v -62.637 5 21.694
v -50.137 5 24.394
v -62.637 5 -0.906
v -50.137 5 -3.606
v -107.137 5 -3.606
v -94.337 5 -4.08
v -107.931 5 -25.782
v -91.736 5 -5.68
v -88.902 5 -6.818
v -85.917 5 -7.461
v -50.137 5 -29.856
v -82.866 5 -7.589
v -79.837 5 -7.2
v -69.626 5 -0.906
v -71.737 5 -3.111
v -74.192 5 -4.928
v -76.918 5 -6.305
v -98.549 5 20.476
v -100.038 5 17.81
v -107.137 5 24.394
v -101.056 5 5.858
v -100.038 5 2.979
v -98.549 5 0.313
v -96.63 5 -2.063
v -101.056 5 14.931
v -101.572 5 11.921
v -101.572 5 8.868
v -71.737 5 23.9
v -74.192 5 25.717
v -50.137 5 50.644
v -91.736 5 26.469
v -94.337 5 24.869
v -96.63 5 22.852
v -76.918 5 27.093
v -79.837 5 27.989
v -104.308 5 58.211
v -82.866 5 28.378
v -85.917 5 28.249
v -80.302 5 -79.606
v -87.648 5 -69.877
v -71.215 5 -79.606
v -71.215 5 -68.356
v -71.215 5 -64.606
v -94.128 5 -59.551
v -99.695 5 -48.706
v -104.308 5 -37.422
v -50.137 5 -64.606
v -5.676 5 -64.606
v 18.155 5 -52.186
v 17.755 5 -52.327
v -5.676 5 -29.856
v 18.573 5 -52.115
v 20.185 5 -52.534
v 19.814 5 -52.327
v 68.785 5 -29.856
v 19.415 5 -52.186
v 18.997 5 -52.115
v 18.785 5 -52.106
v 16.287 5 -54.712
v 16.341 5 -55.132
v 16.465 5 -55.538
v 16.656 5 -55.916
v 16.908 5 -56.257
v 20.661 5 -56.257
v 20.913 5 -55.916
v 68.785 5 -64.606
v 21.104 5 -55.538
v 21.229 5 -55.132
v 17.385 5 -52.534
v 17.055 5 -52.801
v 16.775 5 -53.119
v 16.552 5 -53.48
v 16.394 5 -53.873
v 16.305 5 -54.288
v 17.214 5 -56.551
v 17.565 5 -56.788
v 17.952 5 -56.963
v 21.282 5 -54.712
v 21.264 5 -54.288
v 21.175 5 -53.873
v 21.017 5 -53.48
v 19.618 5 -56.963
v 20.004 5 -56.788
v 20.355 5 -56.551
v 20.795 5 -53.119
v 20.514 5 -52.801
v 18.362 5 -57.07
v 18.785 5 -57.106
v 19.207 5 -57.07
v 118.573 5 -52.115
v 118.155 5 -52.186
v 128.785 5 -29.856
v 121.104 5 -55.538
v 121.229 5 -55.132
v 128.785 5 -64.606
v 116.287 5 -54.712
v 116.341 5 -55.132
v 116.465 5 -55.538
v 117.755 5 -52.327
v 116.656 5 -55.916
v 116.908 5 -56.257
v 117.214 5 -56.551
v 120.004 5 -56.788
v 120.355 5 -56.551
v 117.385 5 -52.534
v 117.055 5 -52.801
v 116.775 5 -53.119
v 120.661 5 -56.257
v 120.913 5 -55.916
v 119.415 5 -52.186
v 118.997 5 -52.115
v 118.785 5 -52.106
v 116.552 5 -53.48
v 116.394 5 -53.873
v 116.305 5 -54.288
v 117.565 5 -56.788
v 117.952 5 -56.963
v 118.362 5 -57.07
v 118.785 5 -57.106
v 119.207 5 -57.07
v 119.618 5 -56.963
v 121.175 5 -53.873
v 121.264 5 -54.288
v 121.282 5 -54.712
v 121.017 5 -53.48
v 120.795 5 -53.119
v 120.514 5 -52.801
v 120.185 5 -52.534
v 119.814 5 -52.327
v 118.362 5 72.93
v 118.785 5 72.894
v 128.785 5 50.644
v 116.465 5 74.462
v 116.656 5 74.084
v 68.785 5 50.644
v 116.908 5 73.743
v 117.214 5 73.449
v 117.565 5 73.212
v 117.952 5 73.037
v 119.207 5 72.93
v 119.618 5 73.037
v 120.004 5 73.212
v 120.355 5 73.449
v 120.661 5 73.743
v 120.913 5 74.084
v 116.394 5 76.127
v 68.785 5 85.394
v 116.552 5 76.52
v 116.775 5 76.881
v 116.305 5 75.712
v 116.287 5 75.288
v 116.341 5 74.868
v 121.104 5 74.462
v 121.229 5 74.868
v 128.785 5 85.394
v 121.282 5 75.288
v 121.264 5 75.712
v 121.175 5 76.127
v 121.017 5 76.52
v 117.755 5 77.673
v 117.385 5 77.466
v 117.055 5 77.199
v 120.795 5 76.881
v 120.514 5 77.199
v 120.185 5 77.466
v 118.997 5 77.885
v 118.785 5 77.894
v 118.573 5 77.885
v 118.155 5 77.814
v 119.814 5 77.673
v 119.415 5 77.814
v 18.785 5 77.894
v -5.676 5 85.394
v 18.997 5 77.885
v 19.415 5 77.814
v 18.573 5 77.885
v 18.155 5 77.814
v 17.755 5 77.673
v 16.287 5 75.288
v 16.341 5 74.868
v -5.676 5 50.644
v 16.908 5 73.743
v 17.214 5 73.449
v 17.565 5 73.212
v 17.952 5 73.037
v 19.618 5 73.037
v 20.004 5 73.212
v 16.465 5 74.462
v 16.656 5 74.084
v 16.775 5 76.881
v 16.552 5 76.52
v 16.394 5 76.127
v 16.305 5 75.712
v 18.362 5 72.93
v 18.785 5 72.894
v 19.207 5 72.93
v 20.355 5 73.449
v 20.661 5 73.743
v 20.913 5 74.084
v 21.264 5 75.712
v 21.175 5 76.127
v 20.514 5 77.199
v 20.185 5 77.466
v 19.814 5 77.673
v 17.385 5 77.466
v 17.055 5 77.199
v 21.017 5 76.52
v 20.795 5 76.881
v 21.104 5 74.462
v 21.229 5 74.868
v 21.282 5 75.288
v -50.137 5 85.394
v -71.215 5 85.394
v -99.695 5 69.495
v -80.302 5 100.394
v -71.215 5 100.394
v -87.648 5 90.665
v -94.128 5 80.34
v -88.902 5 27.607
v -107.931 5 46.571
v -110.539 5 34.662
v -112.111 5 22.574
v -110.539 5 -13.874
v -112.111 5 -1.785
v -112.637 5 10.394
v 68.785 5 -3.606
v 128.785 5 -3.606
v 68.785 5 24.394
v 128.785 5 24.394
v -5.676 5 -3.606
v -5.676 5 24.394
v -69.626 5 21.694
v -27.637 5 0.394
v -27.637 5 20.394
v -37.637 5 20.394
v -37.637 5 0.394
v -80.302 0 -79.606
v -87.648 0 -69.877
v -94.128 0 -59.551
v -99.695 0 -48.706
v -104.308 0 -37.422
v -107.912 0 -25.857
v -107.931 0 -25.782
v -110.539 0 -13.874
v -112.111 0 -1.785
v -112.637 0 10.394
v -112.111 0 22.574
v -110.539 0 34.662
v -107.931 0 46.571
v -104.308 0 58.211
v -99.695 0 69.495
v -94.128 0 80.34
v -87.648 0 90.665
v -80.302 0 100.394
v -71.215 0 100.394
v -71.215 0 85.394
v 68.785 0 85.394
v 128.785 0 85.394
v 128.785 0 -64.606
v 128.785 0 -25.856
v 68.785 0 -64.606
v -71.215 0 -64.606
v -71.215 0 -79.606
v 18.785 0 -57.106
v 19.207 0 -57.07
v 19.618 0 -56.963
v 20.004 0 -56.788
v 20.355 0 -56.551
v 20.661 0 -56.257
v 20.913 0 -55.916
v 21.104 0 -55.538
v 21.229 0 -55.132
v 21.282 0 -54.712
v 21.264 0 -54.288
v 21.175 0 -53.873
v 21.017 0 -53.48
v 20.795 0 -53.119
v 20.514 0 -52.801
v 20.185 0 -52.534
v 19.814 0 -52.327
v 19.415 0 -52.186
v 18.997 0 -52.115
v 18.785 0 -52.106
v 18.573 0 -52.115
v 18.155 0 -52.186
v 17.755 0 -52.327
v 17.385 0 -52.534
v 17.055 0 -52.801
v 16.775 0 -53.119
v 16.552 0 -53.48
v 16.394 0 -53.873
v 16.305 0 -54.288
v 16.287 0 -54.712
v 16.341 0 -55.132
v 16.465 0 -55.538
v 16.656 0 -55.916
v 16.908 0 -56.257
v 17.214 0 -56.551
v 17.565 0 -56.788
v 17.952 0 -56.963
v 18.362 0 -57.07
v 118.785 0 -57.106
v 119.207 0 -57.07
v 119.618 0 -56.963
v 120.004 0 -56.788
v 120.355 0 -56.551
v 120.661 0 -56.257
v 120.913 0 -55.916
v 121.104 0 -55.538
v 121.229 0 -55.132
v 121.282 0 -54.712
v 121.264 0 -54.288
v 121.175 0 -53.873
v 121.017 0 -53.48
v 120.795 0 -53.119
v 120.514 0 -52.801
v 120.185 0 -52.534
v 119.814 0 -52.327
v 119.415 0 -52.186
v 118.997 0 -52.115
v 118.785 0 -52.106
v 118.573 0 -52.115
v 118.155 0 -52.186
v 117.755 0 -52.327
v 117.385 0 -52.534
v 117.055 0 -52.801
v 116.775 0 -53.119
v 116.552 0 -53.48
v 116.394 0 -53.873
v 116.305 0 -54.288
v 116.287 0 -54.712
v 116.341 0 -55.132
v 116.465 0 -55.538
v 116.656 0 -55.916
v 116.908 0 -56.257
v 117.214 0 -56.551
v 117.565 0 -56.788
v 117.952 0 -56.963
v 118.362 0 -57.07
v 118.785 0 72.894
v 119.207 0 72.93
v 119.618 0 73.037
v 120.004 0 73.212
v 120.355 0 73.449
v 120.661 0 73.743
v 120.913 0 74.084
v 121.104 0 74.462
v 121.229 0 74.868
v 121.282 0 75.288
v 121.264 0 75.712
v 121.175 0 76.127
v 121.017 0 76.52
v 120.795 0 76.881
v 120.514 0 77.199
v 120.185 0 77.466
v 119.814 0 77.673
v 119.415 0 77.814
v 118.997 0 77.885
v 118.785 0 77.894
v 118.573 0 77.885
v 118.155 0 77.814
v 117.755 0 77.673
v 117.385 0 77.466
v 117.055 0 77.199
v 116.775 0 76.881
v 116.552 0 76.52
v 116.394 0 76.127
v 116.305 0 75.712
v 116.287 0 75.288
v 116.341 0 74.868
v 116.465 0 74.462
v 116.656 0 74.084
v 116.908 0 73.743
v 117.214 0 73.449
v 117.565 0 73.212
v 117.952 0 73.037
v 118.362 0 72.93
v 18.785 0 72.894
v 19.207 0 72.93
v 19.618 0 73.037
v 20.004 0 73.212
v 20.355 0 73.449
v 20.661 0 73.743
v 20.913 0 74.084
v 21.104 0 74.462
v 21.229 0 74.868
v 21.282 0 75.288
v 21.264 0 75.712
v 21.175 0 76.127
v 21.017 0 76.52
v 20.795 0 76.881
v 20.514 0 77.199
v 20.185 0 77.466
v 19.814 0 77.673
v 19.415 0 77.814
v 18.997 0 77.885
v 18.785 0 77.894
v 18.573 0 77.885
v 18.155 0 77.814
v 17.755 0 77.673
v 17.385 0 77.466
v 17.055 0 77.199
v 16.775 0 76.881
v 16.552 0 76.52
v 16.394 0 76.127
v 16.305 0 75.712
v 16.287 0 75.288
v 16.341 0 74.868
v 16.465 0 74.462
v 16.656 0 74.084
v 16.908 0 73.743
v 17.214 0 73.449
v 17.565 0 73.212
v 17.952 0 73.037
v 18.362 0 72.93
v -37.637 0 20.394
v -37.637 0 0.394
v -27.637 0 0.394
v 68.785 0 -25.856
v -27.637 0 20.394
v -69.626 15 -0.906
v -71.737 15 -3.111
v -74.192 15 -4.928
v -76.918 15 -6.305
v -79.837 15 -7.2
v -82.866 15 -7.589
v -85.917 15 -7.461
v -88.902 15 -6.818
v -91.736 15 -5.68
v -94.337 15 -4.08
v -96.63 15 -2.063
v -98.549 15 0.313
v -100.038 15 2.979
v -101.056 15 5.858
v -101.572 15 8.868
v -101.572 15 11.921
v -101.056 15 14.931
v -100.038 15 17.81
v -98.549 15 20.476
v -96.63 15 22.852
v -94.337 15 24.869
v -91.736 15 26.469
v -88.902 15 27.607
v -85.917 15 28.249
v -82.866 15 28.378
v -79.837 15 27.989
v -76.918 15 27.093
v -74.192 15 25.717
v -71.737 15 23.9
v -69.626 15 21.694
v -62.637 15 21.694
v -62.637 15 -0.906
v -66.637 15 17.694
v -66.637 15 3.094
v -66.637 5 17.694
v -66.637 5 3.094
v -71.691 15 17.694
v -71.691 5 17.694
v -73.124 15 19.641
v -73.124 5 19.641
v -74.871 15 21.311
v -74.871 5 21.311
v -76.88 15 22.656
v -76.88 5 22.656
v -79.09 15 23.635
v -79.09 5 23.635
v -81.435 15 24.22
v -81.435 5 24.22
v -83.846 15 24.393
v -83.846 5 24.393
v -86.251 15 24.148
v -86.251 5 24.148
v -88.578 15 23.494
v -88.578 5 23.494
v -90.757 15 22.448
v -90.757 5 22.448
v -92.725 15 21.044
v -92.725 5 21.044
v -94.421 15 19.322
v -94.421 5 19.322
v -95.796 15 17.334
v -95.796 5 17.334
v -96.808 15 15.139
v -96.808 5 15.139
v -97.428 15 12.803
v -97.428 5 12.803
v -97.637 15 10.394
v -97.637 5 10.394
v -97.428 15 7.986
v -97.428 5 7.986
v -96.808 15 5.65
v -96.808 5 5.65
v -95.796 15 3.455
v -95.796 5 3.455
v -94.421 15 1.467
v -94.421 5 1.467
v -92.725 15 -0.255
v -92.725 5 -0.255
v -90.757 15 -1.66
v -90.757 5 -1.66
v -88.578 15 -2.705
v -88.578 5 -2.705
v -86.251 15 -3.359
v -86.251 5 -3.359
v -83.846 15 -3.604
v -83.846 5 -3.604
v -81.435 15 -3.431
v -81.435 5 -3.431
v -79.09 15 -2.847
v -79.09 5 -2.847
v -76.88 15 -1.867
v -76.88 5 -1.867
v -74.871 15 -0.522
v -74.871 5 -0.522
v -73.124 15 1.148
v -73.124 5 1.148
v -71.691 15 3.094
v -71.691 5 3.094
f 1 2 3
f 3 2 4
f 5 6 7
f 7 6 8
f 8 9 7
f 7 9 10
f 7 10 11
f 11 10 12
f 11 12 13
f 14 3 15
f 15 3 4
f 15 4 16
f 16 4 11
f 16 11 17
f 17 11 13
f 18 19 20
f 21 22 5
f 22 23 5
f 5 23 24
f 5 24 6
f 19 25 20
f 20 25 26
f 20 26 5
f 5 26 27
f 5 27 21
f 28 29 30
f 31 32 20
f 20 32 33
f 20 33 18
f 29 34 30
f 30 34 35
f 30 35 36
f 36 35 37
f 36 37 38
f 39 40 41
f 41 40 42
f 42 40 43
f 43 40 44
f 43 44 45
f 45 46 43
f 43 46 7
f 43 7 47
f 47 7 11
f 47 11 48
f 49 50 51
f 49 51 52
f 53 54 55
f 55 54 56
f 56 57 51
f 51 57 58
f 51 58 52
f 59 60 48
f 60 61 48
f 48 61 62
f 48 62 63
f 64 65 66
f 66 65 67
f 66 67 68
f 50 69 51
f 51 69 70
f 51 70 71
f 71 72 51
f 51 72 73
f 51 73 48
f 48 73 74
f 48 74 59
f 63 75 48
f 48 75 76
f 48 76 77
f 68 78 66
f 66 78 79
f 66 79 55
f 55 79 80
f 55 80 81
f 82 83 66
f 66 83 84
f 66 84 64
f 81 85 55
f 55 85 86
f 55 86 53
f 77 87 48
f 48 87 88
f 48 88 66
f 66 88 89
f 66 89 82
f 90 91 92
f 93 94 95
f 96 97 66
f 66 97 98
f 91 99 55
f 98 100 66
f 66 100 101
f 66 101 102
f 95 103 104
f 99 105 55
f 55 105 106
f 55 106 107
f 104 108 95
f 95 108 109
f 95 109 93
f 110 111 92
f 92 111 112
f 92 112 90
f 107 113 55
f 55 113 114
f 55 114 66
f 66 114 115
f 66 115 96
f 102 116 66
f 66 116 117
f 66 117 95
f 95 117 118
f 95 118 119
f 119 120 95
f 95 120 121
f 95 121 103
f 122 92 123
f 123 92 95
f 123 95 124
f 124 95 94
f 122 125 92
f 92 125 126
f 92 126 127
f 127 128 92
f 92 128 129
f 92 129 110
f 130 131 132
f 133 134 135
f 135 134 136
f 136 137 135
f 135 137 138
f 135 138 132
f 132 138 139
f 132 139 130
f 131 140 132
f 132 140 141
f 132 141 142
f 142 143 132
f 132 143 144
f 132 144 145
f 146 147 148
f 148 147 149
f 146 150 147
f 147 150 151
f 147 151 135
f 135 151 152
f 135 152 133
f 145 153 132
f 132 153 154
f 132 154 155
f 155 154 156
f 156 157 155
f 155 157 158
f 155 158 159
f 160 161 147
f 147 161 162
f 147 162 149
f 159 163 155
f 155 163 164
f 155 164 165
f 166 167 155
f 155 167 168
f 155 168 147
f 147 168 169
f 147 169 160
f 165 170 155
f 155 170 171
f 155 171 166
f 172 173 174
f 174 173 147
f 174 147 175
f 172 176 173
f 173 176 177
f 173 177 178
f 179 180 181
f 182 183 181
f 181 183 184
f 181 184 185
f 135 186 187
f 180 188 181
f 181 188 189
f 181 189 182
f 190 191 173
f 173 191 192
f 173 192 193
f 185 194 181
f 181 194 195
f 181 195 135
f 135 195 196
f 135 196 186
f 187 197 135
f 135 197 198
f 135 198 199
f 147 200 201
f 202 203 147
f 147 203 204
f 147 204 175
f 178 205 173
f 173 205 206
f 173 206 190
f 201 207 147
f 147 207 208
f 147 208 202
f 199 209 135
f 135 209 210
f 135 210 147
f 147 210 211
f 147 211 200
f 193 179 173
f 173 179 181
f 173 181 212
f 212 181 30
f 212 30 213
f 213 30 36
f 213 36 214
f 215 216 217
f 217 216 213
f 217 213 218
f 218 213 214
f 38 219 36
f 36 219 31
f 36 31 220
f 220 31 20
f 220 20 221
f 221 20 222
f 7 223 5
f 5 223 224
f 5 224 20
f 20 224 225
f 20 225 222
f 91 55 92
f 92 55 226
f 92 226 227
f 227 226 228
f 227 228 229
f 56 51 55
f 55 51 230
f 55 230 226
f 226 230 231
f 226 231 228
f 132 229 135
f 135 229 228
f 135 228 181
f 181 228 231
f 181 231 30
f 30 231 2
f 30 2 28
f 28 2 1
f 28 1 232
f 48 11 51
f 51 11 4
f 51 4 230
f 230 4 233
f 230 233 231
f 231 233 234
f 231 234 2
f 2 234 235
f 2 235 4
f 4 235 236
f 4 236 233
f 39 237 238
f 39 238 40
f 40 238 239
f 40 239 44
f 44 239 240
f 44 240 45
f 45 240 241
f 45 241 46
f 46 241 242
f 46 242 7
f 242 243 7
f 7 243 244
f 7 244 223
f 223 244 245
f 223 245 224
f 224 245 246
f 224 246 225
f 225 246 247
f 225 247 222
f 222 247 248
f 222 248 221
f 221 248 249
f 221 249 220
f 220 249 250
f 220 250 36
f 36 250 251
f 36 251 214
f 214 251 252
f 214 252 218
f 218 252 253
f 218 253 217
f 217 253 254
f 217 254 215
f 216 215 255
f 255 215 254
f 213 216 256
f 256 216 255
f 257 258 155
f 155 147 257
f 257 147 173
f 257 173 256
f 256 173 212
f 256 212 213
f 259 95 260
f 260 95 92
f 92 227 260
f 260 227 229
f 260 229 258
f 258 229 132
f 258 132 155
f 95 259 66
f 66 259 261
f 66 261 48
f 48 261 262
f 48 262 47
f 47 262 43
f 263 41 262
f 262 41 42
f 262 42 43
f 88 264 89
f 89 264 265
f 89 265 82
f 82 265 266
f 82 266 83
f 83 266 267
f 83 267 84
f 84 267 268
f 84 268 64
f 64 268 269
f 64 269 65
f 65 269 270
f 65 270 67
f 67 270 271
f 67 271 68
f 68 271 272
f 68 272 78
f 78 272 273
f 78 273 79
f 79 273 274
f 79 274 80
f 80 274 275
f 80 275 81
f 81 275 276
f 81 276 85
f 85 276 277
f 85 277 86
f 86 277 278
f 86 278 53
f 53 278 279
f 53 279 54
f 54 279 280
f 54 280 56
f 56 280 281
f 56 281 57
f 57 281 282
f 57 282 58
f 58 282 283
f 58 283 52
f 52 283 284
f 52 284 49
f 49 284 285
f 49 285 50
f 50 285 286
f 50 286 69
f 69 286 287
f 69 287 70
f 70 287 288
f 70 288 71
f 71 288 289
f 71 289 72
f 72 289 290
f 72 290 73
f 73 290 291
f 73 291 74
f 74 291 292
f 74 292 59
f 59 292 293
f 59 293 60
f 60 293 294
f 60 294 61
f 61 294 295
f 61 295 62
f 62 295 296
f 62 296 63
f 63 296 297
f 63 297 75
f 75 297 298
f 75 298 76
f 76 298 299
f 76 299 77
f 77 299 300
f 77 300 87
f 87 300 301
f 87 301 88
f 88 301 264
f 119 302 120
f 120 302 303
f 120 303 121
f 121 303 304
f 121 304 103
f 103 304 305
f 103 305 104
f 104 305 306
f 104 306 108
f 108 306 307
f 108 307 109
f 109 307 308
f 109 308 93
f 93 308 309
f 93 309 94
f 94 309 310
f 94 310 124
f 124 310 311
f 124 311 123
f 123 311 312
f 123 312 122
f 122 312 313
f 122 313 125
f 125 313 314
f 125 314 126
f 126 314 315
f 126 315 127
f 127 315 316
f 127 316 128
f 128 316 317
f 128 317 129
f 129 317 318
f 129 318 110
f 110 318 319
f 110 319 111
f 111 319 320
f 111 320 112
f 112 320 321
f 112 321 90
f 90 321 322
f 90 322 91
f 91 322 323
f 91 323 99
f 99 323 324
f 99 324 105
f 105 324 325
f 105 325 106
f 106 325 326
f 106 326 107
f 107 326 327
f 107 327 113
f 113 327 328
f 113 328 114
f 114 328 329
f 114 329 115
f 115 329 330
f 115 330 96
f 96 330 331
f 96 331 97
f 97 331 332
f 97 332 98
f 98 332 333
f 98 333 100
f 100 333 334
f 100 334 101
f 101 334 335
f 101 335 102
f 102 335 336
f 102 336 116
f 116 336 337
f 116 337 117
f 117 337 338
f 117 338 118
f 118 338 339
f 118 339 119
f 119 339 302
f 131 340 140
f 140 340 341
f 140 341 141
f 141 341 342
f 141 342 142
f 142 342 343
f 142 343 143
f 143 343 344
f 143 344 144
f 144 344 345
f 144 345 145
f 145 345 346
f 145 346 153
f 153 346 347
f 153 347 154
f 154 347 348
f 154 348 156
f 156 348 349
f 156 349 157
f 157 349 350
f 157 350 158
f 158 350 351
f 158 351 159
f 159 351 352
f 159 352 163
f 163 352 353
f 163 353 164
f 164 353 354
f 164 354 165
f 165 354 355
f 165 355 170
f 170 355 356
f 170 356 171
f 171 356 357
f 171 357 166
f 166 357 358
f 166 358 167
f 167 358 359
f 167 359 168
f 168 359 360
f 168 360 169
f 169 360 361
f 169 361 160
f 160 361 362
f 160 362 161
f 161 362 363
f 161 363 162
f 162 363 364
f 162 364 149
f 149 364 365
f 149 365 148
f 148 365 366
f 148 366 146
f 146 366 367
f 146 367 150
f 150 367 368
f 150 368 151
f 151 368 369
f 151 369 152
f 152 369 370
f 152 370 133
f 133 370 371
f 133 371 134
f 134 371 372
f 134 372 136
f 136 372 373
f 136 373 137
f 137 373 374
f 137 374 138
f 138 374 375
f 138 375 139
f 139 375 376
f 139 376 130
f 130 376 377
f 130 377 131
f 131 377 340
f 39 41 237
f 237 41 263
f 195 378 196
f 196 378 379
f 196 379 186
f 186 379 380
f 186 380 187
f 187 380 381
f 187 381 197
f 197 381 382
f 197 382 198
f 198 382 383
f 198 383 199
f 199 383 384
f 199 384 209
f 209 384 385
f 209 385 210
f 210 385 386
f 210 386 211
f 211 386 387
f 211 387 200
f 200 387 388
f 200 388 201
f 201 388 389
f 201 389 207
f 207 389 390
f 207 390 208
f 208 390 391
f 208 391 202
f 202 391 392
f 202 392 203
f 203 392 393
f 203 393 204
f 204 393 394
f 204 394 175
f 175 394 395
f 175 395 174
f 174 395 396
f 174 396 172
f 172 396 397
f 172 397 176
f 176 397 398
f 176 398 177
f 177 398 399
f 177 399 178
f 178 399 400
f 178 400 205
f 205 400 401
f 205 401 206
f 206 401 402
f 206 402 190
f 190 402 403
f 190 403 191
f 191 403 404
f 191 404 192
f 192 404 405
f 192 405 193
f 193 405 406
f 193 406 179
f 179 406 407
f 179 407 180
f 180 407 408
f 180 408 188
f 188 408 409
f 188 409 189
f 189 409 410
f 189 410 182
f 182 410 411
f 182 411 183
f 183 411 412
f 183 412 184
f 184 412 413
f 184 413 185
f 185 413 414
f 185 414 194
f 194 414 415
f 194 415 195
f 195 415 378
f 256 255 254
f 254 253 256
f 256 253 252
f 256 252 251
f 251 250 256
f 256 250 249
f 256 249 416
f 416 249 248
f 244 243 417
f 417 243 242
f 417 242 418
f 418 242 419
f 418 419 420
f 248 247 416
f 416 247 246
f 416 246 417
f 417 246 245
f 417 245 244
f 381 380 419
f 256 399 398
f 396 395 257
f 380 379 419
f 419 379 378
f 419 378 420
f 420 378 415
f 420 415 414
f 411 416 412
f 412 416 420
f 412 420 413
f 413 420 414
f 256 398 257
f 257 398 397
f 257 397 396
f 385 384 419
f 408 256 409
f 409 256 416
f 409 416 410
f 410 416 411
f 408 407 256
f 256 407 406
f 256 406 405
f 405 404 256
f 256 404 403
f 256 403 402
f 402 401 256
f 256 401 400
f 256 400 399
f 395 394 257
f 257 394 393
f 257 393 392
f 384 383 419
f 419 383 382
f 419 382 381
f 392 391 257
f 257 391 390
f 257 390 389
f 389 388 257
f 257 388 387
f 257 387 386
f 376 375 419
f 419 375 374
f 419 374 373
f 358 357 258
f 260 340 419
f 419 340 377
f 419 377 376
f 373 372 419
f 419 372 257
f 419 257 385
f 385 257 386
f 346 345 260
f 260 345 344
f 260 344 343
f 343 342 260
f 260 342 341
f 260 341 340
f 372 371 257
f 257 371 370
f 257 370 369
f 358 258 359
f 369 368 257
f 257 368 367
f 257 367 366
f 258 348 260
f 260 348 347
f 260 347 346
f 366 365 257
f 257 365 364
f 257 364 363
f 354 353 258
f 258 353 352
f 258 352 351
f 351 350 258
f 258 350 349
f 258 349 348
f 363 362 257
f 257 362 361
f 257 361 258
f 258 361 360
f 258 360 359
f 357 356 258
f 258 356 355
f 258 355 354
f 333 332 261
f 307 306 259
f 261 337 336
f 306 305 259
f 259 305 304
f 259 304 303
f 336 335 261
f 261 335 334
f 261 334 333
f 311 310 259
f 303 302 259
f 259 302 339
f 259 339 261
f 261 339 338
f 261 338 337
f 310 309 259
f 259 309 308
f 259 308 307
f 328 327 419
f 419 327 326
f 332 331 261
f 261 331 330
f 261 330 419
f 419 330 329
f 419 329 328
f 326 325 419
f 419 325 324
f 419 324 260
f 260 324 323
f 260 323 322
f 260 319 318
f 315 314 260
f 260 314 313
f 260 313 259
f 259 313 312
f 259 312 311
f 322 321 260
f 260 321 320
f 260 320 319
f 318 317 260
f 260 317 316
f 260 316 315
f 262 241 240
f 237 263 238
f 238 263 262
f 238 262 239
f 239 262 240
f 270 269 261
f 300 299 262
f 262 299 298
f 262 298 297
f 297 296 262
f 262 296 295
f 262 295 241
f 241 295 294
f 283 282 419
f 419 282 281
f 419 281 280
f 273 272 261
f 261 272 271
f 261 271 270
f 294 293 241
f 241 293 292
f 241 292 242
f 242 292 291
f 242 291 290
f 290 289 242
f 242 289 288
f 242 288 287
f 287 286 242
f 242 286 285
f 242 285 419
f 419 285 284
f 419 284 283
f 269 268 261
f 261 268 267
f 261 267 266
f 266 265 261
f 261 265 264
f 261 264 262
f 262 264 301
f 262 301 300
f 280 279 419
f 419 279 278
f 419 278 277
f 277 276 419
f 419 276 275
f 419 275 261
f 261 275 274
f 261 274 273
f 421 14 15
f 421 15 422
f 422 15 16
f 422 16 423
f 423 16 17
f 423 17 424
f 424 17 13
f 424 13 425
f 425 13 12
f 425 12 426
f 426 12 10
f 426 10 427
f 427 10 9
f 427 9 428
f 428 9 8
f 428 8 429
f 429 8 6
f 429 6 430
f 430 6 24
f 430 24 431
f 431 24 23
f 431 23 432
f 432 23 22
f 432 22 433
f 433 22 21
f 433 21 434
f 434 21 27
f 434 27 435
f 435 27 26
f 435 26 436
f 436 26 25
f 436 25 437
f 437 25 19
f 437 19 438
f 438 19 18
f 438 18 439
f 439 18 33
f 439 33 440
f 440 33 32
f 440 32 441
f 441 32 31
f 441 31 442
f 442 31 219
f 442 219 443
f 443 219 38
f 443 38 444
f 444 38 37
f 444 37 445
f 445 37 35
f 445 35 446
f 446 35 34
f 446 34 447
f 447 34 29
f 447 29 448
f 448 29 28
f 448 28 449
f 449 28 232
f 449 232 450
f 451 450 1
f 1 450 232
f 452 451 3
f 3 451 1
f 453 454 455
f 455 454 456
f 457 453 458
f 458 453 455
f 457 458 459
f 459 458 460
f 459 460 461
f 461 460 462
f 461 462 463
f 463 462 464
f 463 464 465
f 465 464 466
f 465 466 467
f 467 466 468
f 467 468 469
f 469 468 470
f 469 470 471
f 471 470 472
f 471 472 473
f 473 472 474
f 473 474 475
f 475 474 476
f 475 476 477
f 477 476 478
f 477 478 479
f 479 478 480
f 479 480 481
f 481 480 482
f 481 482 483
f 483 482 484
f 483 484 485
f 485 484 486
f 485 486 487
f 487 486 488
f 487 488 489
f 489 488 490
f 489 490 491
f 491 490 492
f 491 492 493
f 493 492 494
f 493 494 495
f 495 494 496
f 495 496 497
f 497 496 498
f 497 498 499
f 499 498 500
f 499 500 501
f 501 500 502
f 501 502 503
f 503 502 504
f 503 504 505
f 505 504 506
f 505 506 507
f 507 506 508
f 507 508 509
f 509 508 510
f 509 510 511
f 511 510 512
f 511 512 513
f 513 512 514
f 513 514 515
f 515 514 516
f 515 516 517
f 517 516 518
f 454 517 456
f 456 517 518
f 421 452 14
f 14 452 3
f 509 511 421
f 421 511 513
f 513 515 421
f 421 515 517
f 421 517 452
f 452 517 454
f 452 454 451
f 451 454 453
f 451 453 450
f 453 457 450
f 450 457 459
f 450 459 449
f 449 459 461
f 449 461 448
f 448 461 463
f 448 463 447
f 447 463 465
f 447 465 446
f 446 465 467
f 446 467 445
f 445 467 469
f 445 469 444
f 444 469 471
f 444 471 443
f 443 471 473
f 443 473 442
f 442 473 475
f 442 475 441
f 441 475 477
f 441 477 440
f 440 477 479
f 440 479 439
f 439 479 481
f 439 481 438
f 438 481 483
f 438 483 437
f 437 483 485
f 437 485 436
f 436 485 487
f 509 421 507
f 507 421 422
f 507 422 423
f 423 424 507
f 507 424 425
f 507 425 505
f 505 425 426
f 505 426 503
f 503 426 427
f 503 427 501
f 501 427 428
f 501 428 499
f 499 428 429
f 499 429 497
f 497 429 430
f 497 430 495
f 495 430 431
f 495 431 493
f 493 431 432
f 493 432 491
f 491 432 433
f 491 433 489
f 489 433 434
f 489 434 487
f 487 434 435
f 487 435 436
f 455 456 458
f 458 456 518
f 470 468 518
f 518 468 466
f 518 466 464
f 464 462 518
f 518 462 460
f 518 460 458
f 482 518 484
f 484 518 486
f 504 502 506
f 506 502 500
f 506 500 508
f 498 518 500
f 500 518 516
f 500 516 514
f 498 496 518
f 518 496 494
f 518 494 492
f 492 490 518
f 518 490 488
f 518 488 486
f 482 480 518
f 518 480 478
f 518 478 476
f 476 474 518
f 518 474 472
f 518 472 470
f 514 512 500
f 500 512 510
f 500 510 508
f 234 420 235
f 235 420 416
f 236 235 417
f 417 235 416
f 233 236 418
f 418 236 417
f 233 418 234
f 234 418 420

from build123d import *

# Parameters (mm, degrees)
CROQUIS1_R              = 2.5
SALIENTE_EXTRUIR1_DEPTH = 5
SALIENTE_EXTRUIR3_DEPTH = 10
CROQUIS4_W              = 10
CROQUIS4_H              = 20
CORTAR_EXTRUIR1_DEPTH   = 6


with BuildPart() as part:
    # Croquis1 → Saliente-Extruir1 (new body)
    with BuildSketch(Plane(origin=(0, 0, 0), x_dir=(1, 0, 0), z_dir=(0, 1, 0))):
        with BuildLine():
            Line((-71.215351812, -100.39445629), (-71.215351812, -85.39445629))
            Line((-71.215351812, -85.39445629), (128.784648188, -85.39445629))
            Line((128.784648188, -85.39445629), (128.784648188, 64.60554371))
            Line((128.784648188, 64.60554371), (-71.215351812, 64.60554371))
            Line((-71.215351812, 64.60554371), (-71.215351812, 79.60554371))
            Line((-71.215351812, 79.60554371), (-80.302472959, 79.60554371))
            ThreePointArc((-80.302472959, 79.60554371), (-112.63670805, -10.39445629), (-80.302472959, -100.39445629))
            Line((-80.302472959, -100.39445629), (-71.215351812, -100.39445629))
        make_face()
        with Locations((118.784648188, 54.60554371)):
            Circle(CROQUIS1_R, mode=Mode.SUBTRACT)
        with Locations((18.784648188, -75.39445629)):
            Circle(CROQUIS1_R, mode=Mode.SUBTRACT)
        with Locations((118.784648188, -75.39445629)):
            Circle(CROQUIS1_R, mode=Mode.SUBTRACT)
        with Locations((18.784648188, 54.60554371)):
            Circle(CROQUIS1_R, mode=Mode.SUBTRACT)
    extrude(amount=SALIENTE_EXTRUIR1_DEPTH)

    # Croquis3 → Saliente-Extruir3 (add)
    with BuildSketch(Plane(origin=(0, 5, 0), x_dir=(1, 0, 0), z_dir=(0, 1, 0))):
        with BuildLine():
            Line((-101.63670805, -10.39445629), (-97.63670805, -10.39445629))
            ThreePointArc((-97.63670805, -10.39445629), (-89.972723776, 2.089729896), (-75.371721661, 0.90554371))
            Line((-75.371721661, 0.90554371), (-69.625640995, 0.90554371))
            ThreePointArc((-69.625640995, 0.90554371), (-89.62840201, 6.579040801), (-101.63670805, -10.39445629))
        make_face()
        with BuildLine():
            ThreePointArc((-75.371721661, -21.69445629), (-89.972723776, -22.878642476), (-97.63670805, -10.39445629))
            Line((-97.63670805, -10.39445629), (-101.63670805, -10.39445629))
            ThreePointArc((-101.63670805, -10.39445629), (-89.62840201, -27.367953381), (-69.625640995, -21.69445629))
            Line((-69.625640995, -21.69445629), (-75.371721661, -21.69445629))
        make_face()
        with BuildLine():
            ThreePointArc((-71.69057897, -17.69445629), (-73.335140348, -19.874841455), (-75.371721661, -21.69445629))
            Line((-75.371721661, -21.69445629), (-69.625640995, -21.69445629))
            ThreePointArc((-69.625640995, -21.69445629), (-68.273800946, -19.7742796), (-67.183440897, -17.69445629))
            Line((-67.183440897, -17.69445629), (-71.69057897, -17.69445629))
        make_face()
        with BuildLine():
            Line((-62.63670805, 0.90554371), (-69.625640995, 0.90554371))
            ThreePointArc((-69.625640995, 0.90554371), (-68.273800946, -1.01463298), (-67.183440897, -3.09445629))
            Line((-67.183440897, -3.09445629), (-66.63670805, -3.09445629))
            Line((-66.63670805, -3.09445629), (-66.63670805, -4.478376507))
            ThreePointArc((-66.63670805, -4.478376507), (-65.8884687, -7.39445629), (-65.63670805, -10.39445629))
            ThreePointArc((-65.63670805, -10.39445629), (-65.8884687, -13.39445629), (-66.63670805, -16.310536073))
            Line((-66.63670805, -16.310536073), (-66.63670805, -17.69445629))
            Line((-66.63670805, -17.69445629), (-67.183440897, -17.69445629))
            ThreePointArc((-67.183440897, -17.69445629), (-68.273800946, -19.7742796), (-69.625640995, -21.69445629))
            Line((-69.625640995, -21.69445629), (-62.63670805, -21.69445629))
            Line((-62.63670805, -21.69445629), (-62.63670805, 0.90554371))
        make_face()
        with BuildLine():
            Line((-66.63670805, -4.478376507), (-66.63670805, -10.39445629))
            Line((-66.63670805, -10.39445629), (-66.63670805, -16.310536073))
            ThreePointArc((-66.63670805, -16.310536073), (-65.8884687, -13.39445629), (-65.63670805, -10.39445629))
            ThreePointArc((-65.63670805, -10.39445629), (-65.8884687, -7.39445629), (-66.63670805, -4.478376507))
        make_face()
        with BuildLine():
            Line((-69.625640995, 0.90554371), (-75.371721661, 0.90554371))
            ThreePointArc((-75.371721661, 0.90554371), (-73.335140348, -0.914071125), (-71.69057897, -3.09445629))
            Line((-71.69057897, -3.09445629), (-67.183440897, -3.09445629))
            ThreePointArc((-67.183440897, -3.09445629), (-68.273800946, -1.01463298), (-69.625640995, 0.90554371))
        make_face()
    extrude(amount=SALIENTE_EXTRUIR3_DEPTH)

    # Croquis4 → Cortar-Extruir1 (cut)
    with BuildSketch(Plane(origin=(0, 5, 0), x_dir=(1, 0, 0), z_dir=(0, 1, 0))):
        with Locations((-32.63670805, -10.39445629)):
            Rectangle(CROQUIS4_W, CROQUIS4_H)
    extrude(amount=-CORTAR_EXTRUIR1_DEPTH, mode=Mode.SUBTRACT)


solid = part.part
